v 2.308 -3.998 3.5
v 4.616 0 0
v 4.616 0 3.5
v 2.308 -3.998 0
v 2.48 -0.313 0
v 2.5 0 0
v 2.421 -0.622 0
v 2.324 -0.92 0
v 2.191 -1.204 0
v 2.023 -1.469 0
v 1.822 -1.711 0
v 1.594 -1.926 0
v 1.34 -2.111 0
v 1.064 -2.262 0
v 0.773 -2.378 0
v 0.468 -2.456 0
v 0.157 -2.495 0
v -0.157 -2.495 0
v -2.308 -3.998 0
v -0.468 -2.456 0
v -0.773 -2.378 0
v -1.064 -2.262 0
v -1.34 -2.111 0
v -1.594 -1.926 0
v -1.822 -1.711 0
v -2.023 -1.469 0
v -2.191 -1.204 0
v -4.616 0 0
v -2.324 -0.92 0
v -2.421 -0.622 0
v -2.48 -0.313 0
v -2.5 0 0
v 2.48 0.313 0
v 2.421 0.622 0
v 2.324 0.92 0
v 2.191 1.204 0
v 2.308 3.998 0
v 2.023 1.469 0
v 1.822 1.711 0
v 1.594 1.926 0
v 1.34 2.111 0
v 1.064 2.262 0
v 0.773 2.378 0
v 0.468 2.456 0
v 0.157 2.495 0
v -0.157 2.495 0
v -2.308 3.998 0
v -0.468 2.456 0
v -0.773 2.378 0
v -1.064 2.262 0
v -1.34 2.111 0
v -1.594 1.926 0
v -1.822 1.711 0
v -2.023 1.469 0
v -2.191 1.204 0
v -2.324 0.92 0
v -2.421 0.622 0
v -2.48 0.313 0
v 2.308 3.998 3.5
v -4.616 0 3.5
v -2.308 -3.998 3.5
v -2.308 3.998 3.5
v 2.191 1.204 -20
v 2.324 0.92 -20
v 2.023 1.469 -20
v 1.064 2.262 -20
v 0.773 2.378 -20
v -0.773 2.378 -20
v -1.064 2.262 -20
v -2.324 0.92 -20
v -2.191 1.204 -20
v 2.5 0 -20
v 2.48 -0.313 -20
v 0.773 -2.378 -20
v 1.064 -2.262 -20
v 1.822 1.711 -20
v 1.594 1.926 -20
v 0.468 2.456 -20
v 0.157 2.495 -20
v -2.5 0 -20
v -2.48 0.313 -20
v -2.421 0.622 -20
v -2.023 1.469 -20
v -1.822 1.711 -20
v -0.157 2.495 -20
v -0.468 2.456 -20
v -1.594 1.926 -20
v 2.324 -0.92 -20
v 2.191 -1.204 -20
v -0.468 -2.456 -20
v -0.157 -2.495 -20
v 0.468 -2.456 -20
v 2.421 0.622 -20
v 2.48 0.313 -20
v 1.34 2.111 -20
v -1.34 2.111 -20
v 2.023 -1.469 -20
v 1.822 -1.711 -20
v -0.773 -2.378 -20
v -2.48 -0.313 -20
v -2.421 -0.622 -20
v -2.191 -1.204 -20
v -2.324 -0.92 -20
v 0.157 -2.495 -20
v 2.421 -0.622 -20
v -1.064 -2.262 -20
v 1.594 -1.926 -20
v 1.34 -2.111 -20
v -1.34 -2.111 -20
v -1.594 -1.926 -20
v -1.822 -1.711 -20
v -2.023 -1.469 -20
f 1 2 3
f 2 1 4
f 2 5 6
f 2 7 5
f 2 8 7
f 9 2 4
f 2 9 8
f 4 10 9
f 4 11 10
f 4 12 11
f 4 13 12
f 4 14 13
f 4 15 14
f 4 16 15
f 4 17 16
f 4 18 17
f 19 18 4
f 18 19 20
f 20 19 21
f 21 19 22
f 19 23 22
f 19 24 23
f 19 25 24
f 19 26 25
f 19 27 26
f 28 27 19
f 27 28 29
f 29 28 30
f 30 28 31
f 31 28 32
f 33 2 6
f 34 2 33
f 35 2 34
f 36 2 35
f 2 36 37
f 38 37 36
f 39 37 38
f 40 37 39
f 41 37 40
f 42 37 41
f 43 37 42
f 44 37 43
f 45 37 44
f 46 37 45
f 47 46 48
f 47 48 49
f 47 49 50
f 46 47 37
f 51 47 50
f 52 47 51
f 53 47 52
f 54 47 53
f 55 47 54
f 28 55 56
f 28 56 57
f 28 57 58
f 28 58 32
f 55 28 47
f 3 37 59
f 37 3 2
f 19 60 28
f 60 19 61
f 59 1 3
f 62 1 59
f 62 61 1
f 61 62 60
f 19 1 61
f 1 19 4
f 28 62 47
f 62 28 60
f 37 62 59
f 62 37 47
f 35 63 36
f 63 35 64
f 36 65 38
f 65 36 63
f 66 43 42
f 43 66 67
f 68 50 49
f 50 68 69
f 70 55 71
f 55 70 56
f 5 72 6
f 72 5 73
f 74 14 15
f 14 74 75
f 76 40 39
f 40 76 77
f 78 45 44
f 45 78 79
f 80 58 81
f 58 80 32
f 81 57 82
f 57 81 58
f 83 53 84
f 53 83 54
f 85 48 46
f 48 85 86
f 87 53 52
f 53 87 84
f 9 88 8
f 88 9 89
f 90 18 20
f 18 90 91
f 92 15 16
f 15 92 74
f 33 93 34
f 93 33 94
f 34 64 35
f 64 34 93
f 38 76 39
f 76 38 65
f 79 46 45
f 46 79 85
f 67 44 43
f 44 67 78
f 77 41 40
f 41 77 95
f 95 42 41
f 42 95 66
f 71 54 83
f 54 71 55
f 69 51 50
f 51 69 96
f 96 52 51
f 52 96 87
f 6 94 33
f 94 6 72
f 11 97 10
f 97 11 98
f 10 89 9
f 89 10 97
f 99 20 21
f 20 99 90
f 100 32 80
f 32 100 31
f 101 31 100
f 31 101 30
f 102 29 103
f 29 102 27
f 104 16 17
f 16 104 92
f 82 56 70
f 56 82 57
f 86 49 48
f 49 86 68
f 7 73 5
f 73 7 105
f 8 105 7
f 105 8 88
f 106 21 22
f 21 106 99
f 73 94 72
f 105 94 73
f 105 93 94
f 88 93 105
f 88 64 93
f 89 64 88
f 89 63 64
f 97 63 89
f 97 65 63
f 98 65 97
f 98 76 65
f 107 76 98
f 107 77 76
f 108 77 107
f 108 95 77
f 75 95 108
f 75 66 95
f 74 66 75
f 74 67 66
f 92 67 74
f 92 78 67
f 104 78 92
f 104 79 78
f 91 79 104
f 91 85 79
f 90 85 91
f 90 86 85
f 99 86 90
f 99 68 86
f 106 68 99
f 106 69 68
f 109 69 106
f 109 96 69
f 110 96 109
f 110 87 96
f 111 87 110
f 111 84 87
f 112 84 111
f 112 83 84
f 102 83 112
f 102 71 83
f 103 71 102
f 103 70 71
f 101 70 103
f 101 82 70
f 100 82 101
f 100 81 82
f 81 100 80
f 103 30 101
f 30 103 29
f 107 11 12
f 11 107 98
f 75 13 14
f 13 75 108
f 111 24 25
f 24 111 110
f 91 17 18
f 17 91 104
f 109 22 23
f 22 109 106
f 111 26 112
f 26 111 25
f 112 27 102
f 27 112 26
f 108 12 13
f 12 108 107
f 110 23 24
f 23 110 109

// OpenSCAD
$fn = 50;


difference() {
	union() {
		translate(v = [0, 0, 0]) {
			rotate(a = [0, 0, 0]) {
				translate(v = [0, 0, 0]) {
					rotate(a = [0, 0, 0]) {
						linear_extrude(height = 3.5000000000) {
							polygon(points = [[4.6160000000, 0.0000000000], [2.3080000000, 3.9975732639], [-2.3080000000, 3.9975732639], [-4.6160000000, 0.0000000000], [-2.3080000000, -3.9975732639], [2.3080000000, -3.9975732639]]);
						}
					}
				}
			}
		}
		translate(v = [0, 0, -20]) {
			rotate(a = [0, 0, 0]) {
				cylinder(h = 20, r = 2.5000000000);
			}
		}
	}
	union();
}
